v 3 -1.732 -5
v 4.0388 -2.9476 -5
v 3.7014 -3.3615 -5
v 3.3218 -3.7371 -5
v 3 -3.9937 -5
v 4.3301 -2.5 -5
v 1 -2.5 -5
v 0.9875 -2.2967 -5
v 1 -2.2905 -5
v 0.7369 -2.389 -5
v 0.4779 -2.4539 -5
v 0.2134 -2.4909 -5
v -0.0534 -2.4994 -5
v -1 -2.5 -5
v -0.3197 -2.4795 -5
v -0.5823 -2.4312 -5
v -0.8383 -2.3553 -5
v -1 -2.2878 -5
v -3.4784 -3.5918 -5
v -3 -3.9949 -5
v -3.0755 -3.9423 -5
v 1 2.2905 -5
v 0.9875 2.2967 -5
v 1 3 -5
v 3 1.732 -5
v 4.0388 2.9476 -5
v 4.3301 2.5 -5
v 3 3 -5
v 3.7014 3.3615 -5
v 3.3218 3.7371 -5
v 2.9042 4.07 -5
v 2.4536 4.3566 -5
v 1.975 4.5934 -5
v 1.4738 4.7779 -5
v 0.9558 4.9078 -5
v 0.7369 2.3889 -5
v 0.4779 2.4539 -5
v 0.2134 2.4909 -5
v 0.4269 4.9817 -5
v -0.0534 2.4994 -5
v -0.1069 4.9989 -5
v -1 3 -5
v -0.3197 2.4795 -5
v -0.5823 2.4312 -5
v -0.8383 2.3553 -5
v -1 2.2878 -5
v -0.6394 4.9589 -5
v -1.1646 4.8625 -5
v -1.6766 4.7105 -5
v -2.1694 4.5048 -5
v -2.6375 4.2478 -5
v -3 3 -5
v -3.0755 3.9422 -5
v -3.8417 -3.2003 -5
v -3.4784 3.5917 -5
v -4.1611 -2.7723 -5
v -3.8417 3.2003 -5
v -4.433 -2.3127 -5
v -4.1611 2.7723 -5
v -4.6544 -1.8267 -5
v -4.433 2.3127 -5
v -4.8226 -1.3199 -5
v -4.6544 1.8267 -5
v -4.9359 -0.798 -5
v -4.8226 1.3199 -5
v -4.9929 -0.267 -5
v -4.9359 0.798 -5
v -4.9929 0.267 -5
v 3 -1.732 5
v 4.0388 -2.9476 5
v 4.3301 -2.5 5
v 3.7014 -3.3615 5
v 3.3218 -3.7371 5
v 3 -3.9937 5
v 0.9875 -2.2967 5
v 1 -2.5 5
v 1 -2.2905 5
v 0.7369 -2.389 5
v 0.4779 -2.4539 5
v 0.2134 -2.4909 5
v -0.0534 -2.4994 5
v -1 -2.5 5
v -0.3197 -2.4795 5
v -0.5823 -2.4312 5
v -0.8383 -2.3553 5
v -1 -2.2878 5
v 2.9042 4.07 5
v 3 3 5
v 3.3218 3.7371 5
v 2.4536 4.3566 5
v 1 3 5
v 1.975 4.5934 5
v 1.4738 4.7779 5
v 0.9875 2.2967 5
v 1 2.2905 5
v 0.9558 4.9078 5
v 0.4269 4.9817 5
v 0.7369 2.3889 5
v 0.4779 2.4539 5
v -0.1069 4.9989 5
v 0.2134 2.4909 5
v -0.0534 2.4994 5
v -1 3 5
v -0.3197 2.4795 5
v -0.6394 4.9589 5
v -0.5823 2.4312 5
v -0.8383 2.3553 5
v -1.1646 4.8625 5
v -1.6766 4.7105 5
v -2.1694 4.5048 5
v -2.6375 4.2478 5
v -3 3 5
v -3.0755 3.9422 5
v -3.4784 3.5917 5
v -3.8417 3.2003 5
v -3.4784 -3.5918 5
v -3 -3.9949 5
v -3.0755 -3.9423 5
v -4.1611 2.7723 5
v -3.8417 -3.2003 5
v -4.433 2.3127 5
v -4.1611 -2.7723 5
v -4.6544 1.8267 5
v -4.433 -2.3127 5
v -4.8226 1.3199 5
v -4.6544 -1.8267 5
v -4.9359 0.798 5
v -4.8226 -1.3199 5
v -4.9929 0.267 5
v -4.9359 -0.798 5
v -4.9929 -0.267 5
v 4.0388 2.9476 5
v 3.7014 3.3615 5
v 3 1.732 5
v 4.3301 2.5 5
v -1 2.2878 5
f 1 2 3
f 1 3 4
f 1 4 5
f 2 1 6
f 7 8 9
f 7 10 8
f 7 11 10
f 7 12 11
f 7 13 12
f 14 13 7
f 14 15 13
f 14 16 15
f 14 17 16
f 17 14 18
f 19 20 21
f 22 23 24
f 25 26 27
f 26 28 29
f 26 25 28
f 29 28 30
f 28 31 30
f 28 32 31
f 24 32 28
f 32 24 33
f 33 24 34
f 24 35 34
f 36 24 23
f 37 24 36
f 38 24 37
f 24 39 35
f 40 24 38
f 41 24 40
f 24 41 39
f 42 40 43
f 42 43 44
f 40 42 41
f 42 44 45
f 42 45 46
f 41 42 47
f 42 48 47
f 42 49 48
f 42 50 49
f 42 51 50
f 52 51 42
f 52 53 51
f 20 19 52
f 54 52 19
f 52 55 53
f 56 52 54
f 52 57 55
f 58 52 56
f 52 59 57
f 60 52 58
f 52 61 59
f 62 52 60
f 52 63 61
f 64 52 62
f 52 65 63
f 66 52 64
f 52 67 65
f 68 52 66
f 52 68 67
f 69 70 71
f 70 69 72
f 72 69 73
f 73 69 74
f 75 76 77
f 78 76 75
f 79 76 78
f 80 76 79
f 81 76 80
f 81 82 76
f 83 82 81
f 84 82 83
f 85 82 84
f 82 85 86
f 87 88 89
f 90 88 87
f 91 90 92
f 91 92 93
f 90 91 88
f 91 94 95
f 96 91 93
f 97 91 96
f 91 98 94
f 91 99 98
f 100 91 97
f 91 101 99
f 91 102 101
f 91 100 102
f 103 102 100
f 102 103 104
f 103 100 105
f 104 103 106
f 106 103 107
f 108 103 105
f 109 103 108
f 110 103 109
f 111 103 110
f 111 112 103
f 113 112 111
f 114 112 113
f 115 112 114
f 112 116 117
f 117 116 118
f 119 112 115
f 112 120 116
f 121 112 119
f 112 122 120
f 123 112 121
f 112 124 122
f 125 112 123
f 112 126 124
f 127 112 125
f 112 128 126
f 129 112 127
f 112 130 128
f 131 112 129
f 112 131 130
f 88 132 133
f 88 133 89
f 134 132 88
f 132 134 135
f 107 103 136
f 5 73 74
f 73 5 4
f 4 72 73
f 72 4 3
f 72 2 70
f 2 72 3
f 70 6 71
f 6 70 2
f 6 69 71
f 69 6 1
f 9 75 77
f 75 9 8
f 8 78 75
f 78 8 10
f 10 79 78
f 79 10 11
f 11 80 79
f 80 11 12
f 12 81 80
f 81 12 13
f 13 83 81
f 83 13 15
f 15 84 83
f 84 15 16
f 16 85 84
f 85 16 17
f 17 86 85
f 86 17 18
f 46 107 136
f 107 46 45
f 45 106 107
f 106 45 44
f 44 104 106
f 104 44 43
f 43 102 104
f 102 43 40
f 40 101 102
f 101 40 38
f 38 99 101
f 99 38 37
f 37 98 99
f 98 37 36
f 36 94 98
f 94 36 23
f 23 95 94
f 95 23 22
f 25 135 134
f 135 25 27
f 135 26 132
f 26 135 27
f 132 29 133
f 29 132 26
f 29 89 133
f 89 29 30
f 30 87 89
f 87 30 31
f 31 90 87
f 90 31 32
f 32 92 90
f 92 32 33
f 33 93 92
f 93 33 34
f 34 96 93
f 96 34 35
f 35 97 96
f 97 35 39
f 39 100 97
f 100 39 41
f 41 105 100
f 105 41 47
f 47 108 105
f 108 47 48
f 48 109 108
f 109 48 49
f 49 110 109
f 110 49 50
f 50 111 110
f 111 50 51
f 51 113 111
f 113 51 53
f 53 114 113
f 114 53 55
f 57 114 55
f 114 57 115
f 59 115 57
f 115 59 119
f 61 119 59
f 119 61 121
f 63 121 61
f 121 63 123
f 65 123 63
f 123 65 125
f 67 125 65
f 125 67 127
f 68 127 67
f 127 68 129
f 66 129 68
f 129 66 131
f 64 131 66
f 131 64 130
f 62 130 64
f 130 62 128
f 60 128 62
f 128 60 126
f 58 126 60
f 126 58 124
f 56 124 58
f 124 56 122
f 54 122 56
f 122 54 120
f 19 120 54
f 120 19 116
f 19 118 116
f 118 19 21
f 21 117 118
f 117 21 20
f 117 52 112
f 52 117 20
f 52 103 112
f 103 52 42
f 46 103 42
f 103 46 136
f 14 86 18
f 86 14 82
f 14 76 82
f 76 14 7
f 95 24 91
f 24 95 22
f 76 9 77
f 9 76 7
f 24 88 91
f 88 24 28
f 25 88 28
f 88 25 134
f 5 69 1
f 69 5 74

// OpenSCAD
// Generated by SolidPython 1.1.3 on 2025-02-20 04:03:59
$fn=50;


intersection() {
	translate(v = [-5.0000000000, -5.0000000000, -5.0000000000]) {
		linear_extrude(height = 10) {
			polygon(points = [[9.3301270189, 7.5000000000], [9.0387948484, 7.9475644476], [8.7013899854, 8.3615044513], [8.3217613875, 8.7370979763], [7.9042396813, 9.0700604263], [7.4535877600, 9.3565935206], [6.9749464512, 9.5934286231], [6.4737758721, 9.7778640289], [5.9557931435, 9.9077957850], [5.4269071715, 9.9817416901], [4.8931512411, 9.9988582039], [4.3606141916, 9.9589500691], [3.8353709579, 9.8624725392], [3.3234132705, 9.7105261849], [2.8305813044, 9.5048443395], [2.3624970575, 9.2477733259], [1.9245002169, 8.9422456905], [1.5215872470, 8.5917467505], [1.1583543913, 8.2002748347], [0.8389452414, 7.7722956725], [0.5670034681, 7.3126914512], [0.3456312568, 6.8267051218], [0.1773539185, 6.3198805903], [0.0640910829, 5.7979994752], [0.0071347997, 5.2670151533], [0.0071347997, 4.7329848467], [0.0640910829, 4.2020005248], [0.1773539185, 3.6801194097], [0.3456312568, 3.1732948782], [0.5670034681, 2.6873085488], [0.8389452414, 2.2277043275], [1.1583543913, 1.7997251653], [1.5215872470, 1.4082532495], [1.9245002169, 1.0577543095], [2.3624970575, 0.7522266741], [2.8305813044, 0.4951556605], [3.3234132705, 0.2894738151], [3.8353709579, 0.1375274608], [4.3606141916, 0.0410499309], [4.8931512411, 0.0011417961], [5.4269071715, 0.0182583099], [5.9557931435, 0.0922042150], [6.4737758721, 0.2221359711], [6.9749464512, 0.4065713769], [7.4535877600, 0.6434064794], [7.9042396813, 0.9299395737], [8.3217613875, 1.2629020237], [8.7013899854, 1.6384955487], [9.0387948484, 2.0524355524], [9.3301270189, 2.5000000000], [7.1650635095, 3.7500000000], [7.0193974242, 3.5262177762], [6.8506949927, 3.3192477743], [6.6608806938, 3.1314510119], [6.4521198406, 2.9649697869], [6.2267938800, 2.8217032397], [5.9874732256, 2.7032856885], [5.7368879360, 2.6110679855], [5.4778965718, 2.5461021075], [5.2134535857, 2.5091291549], [4.9465756205, 2.5005708980], [4.6803070958, 2.5205249654], [4.4176854790, 2.5687637304], [4.1617066352, 2.6447369076], [3.9152906522, 2.7475778302], [3.6812485287, 2.8761133371], [3.4622501085, 3.0288771547], [3.2607936235, 3.2041266248], [3.0791771957, 3.3998625827], [2.9194726207, 3.6138521637], [2.7835017341, 3.8436542744], [2.6728156284, 4.0866474391], [2.5886769593, 4.3400597048], [2.5320455415, 4.6010002624], [2.5035673999, 4.8664924234], [2.5035673999, 5.1335075766], [2.5320455415, 5.3989997376], [2.5886769593, 5.6599402952], [2.6728156284, 5.9133525609], [2.7835017341, 6.1563457256], [2.9194726207, 6.3861478363], [3.0791771957, 6.6001374173], [3.2607936235, 6.7958733752], [3.4622501085, 6.9711228453], [3.6812485287, 7.1238866629], [3.9152906522, 7.2524221698], [4.1617066352, 7.3552630924], [4.4176854790, 7.4312362696], [4.6803070958, 7.4794750346], [4.9465756205, 7.4994291020], [5.2134535857, 7.4908708451], [5.4778965718, 7.4538978925], [5.7368879360, 7.3889320145], [5.9874732256, 7.2967143115], [6.2267938800, 7.1782967603], [6.4521198406, 7.0350302131], [6.6608806938, 6.8685489881], [6.8506949927, 6.6807522257], [7.0193974242, 6.4737822238], [7.1650635095, 6.2500000000]]);
		}
	}
	rotate(a = -90, v = [0, 0, 1]) {
		translate(v = [-5.0000000000, -5.0000000000, -5.0000000000]) {
			linear_extrude(height = 10) {
				polygon(points = [[0, 0], [10, 0], [10, 2.0000000000], [2.0000000000, 2.0000000000], [2.0000000000, 4.0000000000], [7.5000000000, 4.0000000000], [7.5000000000, 6.0000000000], [2.0000000000, 6.0000000000], [2.0000000000, 8.0000000000], [10, 8.0000000000], [10, 10], [0, 10]]);
			}
		}
	}
}
/***********************************************
*********      SolidPython code:      **********
************************************************
 
from solid import *
from solid.utils import *

import math
import matplotlib.pyplot as plt
import subprocess
import os

class Hole:
    def __init__(self, x, y, radius):
        """
        Hole defined by:
        :param x: x dimension for center point of the circle as a ratio of letter height
        :param y: y dimension for center point of the circle as a ratio of letter height
        :param radius: radius of circle as a ratio of letter height
        """
        self.x = x
        self.y = y
        self.radius = radius

class Letter3D:
    def __init__(self, name, outer_shape_points, height, holes=None):
        """
        3D Letter defined by:
        :param name: name of letter
        :param outer_shape_points: points defining the outer shape of the letter
        :param heigh: size of cube that letter fits inside
        :param holes: list of Holes
        """
        self.name = name
        self.outer_shape_points = outer_shape_points
        self.holes = holes if holes is None else []
        self.height = height


    def generate(self):
        shape = polygon(points=self.outer_shape_points)

        if self.holes:
            for hole in self.holes:
                circle_hole = circle(r=hole.radius*self.height)
                positioned_hole = translate([hole.x*self.height, hole.y*self.height])(circle_hole)
                shape = difference()(shape, positioned_hole)
        
        shape_3d = linear_extrude(height=self.height)(shape)
        shape_3d = translate([-self.height/2, -self.height/2, -self.height/2])(shape_3d)
        return shape_3d
    
    def render(self):
        scad_render_to_file(self.shape, f"output/{self.name}.scad", file_header='$fn=50;')
        subprocess.run(["C:\\Program Files\\OpenSCAD\\openscad.exe", "-o", f"output\\{self.name}.stl", f"output\\{self.name}.scad"])


class TwoLetter3D:
    def __init__(self, height, letterA, letterA_face, letterB=None, letterB_face=None):
        self.height = height
        self.letterA = letterA
        self.letterB = letterB
        self.letterA_face = letterA_face
        self.letterB_face = letterB_face

    def call_letter_generation(self, letter):
        letter = letter.upper()
        function_name = f"letter_{letter}"
        func = globals().get(function_name)
        if func is None:
            raise ValueError(f"No letter generation function defined for letter '{letter}'.")
        else:
            print(func)
        return func(self.height)
    
    def rotate_object(self, face, shape):
        face = face.lower()
        if face == "z":
            return shape
        if face == "x":
            return rotate(a=90, v=[0,1,0])(shape)
        if face == "y":
            return rotate(a=-90, v=[0,0,1])(shape)
        else:
            raise ValueError("Face must be one of 'x', 'y', or 'z'.")

    def render(self):
        if self.letterA:
            letterA3D = self.call_letter_generation(self.letterA)
            letterA3D = self.rotate_object(self.letterA_face, letterA3D)

        if self.letterB:
            letterB3D = self.call_letter_generation(self.letterB)
            letterB3D = self.rotate_object(self.letterB_face, letterB3D)
            combined = intersection()(letterA3D, letterB3D)
            file_name = self.letterA + self.letterB
            scad_render_to_file(combined, f"output/{file_name}.scad", file_header='$fn=50;')
            subprocess.run(["C:\\Program Files\\OpenSCAD\\openscad.exe", "-o", f"output\\{file_name}.stl", f"output\\{file_name}.scad"])
            return
        else:
            file_name = self.letterA
            scad_render_to_file(letterA3D, f"output/{file_name}.scad", file_header='$fn=50;')
            subprocess.run(["C:\\Program Files\\OpenSCAD\\openscad.exe", "-o", f"output\\{file_name}.stl", f"output\\{file_name}.scad"])
    
                

def arc_points(radius, start_angle, end_angle, center=[0,0], num_points=50):
    angles = [start_angle + i * (end_angle - start_angle) / (num_points - 1)
              for i in range(num_points)]
    points = [
        (center[0] + radius * math.cos(math.radians(angle)),
         center[1] + radius * math.sin(math.radians(angle)))
        for angle in angles
    ]
    return points

def letter_A(h):
    shape_points = [(0,0), (h/2, h), (h, 0), (5/6*h, 0), (2/3*h, 1/3*h), (1/3*h, 1/3*h), (h/6, 0)]
    holes = [Hole(1/2, 7/12, 1/6)]
    A = Letter3D("A", shape_points, h, holes)
    return A.generate()

def letter_B(h):
    top_arc_points = arc_points(h/4, 90, -90, center=[3/4*h, 3/4*h])
    bottom_arc_points = arc_points(h/4, 90, -90, center=[3/4*h, h/4])
    other_points = [(0,0),(0,h)]

    shape_points = top_arc_points + bottom_arc_points + other_points
    holes = [Hole(1/2, 3/4, 1/6), Hole(1/2, 1/4, 1/6)]
    B = Letter3D("B", shape_points, h, holes)
    return B.generate()

def letter_C(h):
    outer_arc_points = arc_points(h/2, 30, 330, center=[h/2,h/2])
    inner_arc_points = arc_points(h/4, 30, 330, center=[h/2,h/2])[::-1]
    shape_points = outer_arc_points + inner_arc_points
    # print(shape_points)
    C = Letter3D("C", shape_points, h)
    return C.generate()


def letter_D(h):
    outer_arc_points = arc_points(h/2, 90, -90, center= [h/2, h/2])
    shape_points = outer_arc_points + [(0,0), (0, h)]
    holes = [Hole(1/2, 1/2, 1/6)]
    D = Letter3D("D", shape_points, h, holes)
    return D.generate()

def letter_E(h):
    points = [(0,0), (h,0), (h,h/5), (h/5,h/5), (h/5,2/5*h), (3/4*h,2/5*h), (3/4*h,3/5*h), (h/5,3/5*h), (h/5,4/5*h), (h,4/5*h), (h,h), (0,h)]
    E = Letter3D("E", points, h)
    return E.generate()

def letter_F(h):
    points = [(0,0), (h/5,0), (h/5,2/5*h), (3/4*h,2/5*h), (3/4*h,3/5*h), (h/5,3/5*h), (h/5,4/5*h), (h,4/5*h), (h,h), (0,h)]
    F = Letter3D("F", points, h)
    return F.generate()

if __name__ == "__main__":
    os.makedirs("output", exist_ok=True)

    letters = [chr(x) for x in range(ord('A'), ord('F') + 1)]
    for letter in letters:
        for other_letter in letters:
            shape = TwoLetter3D(10, letter, "z", other_letter, "y")
            shape.render()
 
 
************************************************/
